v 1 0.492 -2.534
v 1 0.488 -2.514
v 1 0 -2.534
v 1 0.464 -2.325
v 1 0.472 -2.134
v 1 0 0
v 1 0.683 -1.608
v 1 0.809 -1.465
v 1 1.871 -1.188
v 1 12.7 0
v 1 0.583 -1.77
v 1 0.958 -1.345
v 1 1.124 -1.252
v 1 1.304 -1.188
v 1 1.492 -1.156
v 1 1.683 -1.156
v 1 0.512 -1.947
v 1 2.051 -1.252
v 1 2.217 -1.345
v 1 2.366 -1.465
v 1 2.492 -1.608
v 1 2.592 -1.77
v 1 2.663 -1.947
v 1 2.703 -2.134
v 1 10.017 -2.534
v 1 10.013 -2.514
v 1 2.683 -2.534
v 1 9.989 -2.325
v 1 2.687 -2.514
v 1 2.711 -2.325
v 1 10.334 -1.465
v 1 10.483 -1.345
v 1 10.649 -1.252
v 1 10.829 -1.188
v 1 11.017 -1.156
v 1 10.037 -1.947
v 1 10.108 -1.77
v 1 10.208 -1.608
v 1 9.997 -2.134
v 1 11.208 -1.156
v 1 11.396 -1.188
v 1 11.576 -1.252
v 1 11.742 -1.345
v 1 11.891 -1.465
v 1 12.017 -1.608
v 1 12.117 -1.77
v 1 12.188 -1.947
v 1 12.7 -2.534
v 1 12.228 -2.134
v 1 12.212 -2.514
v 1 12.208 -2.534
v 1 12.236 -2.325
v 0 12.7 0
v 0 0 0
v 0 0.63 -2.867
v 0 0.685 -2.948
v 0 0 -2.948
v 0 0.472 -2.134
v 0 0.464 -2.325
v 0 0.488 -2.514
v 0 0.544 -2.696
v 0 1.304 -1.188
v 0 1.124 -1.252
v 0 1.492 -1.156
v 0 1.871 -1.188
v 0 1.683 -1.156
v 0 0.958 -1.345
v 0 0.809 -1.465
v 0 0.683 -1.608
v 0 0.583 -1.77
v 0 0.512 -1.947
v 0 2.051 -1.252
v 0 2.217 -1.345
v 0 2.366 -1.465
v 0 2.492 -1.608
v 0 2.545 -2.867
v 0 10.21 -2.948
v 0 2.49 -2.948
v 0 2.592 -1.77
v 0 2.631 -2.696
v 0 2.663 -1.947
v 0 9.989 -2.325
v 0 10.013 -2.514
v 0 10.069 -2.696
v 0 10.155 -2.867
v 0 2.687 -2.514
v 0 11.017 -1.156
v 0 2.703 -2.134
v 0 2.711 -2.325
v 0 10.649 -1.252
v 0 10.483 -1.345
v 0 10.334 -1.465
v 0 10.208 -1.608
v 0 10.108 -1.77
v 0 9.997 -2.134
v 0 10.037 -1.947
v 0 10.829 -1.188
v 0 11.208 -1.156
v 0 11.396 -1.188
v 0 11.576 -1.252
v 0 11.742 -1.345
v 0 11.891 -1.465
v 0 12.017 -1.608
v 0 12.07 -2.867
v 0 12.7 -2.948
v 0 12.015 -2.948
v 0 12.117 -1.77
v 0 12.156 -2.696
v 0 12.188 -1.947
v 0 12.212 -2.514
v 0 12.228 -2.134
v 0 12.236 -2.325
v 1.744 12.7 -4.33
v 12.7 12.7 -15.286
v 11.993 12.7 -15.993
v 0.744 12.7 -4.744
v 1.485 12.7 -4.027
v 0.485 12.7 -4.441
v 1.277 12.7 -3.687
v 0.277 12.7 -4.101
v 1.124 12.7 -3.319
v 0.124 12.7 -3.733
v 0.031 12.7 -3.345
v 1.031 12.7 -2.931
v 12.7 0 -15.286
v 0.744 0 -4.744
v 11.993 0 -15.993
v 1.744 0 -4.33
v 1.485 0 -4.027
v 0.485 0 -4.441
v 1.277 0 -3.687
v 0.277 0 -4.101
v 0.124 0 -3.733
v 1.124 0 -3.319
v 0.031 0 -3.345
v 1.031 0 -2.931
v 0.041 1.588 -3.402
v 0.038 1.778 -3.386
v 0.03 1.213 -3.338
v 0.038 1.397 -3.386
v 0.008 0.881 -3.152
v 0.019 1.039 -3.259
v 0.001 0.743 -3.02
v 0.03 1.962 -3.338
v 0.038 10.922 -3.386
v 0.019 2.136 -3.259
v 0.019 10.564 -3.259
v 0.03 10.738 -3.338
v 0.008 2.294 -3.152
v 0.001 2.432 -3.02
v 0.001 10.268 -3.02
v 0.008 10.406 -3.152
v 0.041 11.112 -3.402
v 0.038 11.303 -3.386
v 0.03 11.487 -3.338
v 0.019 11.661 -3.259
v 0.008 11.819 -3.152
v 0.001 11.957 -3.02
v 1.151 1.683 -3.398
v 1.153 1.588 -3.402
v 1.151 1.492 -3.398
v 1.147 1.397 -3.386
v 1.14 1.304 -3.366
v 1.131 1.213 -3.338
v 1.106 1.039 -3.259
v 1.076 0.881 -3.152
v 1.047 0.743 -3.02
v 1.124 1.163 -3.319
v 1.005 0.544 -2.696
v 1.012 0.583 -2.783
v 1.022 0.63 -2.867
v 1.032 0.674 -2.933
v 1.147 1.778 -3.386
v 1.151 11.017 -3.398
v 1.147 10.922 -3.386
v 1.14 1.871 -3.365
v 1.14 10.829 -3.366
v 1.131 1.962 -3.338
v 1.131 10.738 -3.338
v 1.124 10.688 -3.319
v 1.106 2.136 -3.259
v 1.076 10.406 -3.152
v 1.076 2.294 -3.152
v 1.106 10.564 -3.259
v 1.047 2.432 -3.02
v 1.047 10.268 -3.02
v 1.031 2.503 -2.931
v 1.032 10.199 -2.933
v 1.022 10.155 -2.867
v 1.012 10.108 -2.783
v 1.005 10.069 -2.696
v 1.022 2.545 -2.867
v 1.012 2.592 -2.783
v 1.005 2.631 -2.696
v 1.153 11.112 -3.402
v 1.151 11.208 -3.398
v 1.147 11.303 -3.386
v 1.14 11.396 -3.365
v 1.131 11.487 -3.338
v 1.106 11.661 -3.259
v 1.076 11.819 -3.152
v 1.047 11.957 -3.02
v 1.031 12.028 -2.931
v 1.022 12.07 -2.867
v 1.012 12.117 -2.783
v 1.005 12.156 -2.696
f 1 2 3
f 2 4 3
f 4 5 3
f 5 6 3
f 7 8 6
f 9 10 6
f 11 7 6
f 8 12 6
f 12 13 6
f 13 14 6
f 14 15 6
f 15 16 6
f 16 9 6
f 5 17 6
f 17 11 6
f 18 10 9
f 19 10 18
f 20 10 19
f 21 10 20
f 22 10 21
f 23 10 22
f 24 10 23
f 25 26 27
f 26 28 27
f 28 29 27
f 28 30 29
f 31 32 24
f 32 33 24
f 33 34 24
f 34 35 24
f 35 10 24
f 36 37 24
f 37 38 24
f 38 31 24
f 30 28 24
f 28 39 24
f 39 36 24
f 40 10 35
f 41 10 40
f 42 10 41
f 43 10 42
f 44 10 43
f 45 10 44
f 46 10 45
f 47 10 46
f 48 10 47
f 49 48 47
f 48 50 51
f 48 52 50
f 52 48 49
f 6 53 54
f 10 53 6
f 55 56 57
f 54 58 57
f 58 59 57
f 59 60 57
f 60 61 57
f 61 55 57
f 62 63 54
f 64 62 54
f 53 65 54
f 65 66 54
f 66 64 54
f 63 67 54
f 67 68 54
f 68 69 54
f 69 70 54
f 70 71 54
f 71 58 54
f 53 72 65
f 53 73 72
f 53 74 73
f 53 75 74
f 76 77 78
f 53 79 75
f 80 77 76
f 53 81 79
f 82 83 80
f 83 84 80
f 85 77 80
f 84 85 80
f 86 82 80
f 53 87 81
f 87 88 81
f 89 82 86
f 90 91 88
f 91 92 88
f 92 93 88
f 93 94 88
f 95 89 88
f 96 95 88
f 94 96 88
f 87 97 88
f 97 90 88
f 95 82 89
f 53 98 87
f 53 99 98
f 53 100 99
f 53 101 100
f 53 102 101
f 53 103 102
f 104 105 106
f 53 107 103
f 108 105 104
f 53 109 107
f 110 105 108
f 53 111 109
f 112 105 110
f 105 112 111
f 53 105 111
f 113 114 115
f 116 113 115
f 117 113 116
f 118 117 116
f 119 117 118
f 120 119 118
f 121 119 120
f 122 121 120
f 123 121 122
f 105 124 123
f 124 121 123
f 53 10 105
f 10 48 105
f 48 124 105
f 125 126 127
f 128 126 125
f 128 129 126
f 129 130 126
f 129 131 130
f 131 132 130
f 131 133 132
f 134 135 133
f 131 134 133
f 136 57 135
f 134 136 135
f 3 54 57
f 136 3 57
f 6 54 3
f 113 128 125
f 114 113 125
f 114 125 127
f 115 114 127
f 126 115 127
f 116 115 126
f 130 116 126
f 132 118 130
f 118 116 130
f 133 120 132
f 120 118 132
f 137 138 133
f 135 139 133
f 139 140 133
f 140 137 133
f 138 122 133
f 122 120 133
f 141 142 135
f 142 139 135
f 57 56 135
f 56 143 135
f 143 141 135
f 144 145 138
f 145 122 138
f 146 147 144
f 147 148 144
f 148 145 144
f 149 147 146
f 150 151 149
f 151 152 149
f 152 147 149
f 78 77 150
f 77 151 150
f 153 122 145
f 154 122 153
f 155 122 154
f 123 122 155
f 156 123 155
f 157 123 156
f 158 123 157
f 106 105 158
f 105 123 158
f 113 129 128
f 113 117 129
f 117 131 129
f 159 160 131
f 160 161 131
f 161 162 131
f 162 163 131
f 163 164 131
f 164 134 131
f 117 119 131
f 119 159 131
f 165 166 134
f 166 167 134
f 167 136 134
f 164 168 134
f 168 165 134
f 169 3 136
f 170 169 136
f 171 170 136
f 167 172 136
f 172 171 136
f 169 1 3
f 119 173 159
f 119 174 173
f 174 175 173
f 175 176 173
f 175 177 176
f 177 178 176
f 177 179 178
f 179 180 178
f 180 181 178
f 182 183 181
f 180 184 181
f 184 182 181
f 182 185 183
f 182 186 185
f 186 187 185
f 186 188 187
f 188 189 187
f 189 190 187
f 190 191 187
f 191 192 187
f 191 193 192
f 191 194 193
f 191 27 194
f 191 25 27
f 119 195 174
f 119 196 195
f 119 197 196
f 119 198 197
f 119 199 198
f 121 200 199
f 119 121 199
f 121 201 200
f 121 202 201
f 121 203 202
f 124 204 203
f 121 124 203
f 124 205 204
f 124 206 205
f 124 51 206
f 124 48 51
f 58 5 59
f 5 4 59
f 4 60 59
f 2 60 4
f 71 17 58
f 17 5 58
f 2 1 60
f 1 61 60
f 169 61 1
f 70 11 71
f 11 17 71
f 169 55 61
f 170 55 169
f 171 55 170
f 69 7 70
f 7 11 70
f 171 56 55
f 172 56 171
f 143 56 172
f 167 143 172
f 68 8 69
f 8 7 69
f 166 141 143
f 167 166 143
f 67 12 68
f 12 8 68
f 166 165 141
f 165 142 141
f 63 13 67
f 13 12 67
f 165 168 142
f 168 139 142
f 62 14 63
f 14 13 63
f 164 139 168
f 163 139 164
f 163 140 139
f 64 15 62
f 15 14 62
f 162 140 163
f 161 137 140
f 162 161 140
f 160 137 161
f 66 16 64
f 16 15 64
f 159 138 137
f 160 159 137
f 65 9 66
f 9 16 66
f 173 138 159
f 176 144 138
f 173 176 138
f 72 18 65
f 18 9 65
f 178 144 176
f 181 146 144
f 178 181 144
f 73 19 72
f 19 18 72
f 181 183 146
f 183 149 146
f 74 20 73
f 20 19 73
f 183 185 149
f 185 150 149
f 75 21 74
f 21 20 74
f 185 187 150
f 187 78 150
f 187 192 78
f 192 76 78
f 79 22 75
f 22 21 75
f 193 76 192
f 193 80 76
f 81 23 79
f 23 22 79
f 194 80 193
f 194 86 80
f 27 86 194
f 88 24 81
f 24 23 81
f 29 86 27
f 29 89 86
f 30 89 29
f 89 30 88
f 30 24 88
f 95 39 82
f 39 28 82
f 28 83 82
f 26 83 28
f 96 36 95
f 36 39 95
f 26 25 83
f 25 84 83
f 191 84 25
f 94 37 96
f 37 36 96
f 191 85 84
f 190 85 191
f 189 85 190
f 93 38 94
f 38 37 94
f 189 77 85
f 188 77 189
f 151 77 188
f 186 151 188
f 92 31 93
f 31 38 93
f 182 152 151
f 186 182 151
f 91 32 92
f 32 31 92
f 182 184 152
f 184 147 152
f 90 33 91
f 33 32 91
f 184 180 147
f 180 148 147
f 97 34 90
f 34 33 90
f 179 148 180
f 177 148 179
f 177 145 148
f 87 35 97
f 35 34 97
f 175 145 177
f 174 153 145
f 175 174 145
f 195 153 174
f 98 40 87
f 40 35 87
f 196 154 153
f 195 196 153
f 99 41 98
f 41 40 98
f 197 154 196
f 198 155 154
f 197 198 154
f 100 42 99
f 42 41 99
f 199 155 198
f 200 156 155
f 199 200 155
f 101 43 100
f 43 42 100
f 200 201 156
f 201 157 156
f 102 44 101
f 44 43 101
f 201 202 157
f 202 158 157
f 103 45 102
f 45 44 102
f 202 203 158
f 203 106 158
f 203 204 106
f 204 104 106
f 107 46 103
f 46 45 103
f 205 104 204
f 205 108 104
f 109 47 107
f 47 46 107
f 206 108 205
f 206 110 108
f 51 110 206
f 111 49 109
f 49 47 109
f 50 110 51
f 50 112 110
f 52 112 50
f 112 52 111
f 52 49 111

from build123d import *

# Parameters (mm, degrees)
SKETCH1_W               = 1
SKETCH1_H               = 4
BOSS_EXTRUDE1_DEPTH     = 12.7
BOSS_EXTRUDE2_DEPTH     = 12.7
FILLET1_R               = 2.54
SKETCH3_R               = 1.125
CUT_EXTRUDE1_DEPTH      = 24.536198366
CUT_EXTRUDE1_DEPTH_BACK = 24.536198366


with BuildPart() as part:
    # Sketch1 → Boss-Extrude1 (new body)
    with BuildSketch(Plane(origin=(0, 0, 0), x_dir=(1, 0, 0), z_dir=(0, 1, 0))):
        with Locations((0.5, 2)):
            Rectangle(SKETCH1_W, SKETCH1_H)
    extrude(amount=BOSS_EXTRUDE1_DEPTH)

    # Sketch2 → Boss-Extrude2 (add)
    with BuildSketch(Plane(origin=(0, 0, 0), x_dir=(1, 0, 0), z_dir=(0, 1, 0))):
        Polygon((0, 4), (11.992893219, 15.992893219), (12.7, 15.285786438), (0.707106781, 3.292893219), align=None)
    extrude(amount=BOSS_EXTRUDE2_DEPTH)

    # Fillet1
    fillet1_edges = [part.edges().sort_by_distance(p)[0] for p in [
        (1, 6.35, -3.585786438),
        (0, 6.35, -4),
    ]]
    fillet(fillet1_edges, radius=FILLET1_R)

    # Sketch3 → Cut-Extrude1 (cut, two sides)
    with BuildSketch(Plane(origin=(1, 0, 0), x_dir=(0, 0, -1), z_dir=(1, 0, 0))) as cut_extrude1_sk:
        with Locations(Location((2.276792488, 11.1125, 0), (0, 0, 306.622338606))):
            Circle(SKETCH3_R)
        with Locations(Location((2.276792488, 1.5875, 0), (0, 0, 306.622338606))):
            Circle(SKETCH3_R)
    extrude(amount=CUT_EXTRUDE1_DEPTH, mode=Mode.SUBTRACT)
    extrude(cut_extrude1_sk.sketch, amount=-CUT_EXTRUDE1_DEPTH_BACK, mode=Mode.SUBTRACT)


solid = part.part
